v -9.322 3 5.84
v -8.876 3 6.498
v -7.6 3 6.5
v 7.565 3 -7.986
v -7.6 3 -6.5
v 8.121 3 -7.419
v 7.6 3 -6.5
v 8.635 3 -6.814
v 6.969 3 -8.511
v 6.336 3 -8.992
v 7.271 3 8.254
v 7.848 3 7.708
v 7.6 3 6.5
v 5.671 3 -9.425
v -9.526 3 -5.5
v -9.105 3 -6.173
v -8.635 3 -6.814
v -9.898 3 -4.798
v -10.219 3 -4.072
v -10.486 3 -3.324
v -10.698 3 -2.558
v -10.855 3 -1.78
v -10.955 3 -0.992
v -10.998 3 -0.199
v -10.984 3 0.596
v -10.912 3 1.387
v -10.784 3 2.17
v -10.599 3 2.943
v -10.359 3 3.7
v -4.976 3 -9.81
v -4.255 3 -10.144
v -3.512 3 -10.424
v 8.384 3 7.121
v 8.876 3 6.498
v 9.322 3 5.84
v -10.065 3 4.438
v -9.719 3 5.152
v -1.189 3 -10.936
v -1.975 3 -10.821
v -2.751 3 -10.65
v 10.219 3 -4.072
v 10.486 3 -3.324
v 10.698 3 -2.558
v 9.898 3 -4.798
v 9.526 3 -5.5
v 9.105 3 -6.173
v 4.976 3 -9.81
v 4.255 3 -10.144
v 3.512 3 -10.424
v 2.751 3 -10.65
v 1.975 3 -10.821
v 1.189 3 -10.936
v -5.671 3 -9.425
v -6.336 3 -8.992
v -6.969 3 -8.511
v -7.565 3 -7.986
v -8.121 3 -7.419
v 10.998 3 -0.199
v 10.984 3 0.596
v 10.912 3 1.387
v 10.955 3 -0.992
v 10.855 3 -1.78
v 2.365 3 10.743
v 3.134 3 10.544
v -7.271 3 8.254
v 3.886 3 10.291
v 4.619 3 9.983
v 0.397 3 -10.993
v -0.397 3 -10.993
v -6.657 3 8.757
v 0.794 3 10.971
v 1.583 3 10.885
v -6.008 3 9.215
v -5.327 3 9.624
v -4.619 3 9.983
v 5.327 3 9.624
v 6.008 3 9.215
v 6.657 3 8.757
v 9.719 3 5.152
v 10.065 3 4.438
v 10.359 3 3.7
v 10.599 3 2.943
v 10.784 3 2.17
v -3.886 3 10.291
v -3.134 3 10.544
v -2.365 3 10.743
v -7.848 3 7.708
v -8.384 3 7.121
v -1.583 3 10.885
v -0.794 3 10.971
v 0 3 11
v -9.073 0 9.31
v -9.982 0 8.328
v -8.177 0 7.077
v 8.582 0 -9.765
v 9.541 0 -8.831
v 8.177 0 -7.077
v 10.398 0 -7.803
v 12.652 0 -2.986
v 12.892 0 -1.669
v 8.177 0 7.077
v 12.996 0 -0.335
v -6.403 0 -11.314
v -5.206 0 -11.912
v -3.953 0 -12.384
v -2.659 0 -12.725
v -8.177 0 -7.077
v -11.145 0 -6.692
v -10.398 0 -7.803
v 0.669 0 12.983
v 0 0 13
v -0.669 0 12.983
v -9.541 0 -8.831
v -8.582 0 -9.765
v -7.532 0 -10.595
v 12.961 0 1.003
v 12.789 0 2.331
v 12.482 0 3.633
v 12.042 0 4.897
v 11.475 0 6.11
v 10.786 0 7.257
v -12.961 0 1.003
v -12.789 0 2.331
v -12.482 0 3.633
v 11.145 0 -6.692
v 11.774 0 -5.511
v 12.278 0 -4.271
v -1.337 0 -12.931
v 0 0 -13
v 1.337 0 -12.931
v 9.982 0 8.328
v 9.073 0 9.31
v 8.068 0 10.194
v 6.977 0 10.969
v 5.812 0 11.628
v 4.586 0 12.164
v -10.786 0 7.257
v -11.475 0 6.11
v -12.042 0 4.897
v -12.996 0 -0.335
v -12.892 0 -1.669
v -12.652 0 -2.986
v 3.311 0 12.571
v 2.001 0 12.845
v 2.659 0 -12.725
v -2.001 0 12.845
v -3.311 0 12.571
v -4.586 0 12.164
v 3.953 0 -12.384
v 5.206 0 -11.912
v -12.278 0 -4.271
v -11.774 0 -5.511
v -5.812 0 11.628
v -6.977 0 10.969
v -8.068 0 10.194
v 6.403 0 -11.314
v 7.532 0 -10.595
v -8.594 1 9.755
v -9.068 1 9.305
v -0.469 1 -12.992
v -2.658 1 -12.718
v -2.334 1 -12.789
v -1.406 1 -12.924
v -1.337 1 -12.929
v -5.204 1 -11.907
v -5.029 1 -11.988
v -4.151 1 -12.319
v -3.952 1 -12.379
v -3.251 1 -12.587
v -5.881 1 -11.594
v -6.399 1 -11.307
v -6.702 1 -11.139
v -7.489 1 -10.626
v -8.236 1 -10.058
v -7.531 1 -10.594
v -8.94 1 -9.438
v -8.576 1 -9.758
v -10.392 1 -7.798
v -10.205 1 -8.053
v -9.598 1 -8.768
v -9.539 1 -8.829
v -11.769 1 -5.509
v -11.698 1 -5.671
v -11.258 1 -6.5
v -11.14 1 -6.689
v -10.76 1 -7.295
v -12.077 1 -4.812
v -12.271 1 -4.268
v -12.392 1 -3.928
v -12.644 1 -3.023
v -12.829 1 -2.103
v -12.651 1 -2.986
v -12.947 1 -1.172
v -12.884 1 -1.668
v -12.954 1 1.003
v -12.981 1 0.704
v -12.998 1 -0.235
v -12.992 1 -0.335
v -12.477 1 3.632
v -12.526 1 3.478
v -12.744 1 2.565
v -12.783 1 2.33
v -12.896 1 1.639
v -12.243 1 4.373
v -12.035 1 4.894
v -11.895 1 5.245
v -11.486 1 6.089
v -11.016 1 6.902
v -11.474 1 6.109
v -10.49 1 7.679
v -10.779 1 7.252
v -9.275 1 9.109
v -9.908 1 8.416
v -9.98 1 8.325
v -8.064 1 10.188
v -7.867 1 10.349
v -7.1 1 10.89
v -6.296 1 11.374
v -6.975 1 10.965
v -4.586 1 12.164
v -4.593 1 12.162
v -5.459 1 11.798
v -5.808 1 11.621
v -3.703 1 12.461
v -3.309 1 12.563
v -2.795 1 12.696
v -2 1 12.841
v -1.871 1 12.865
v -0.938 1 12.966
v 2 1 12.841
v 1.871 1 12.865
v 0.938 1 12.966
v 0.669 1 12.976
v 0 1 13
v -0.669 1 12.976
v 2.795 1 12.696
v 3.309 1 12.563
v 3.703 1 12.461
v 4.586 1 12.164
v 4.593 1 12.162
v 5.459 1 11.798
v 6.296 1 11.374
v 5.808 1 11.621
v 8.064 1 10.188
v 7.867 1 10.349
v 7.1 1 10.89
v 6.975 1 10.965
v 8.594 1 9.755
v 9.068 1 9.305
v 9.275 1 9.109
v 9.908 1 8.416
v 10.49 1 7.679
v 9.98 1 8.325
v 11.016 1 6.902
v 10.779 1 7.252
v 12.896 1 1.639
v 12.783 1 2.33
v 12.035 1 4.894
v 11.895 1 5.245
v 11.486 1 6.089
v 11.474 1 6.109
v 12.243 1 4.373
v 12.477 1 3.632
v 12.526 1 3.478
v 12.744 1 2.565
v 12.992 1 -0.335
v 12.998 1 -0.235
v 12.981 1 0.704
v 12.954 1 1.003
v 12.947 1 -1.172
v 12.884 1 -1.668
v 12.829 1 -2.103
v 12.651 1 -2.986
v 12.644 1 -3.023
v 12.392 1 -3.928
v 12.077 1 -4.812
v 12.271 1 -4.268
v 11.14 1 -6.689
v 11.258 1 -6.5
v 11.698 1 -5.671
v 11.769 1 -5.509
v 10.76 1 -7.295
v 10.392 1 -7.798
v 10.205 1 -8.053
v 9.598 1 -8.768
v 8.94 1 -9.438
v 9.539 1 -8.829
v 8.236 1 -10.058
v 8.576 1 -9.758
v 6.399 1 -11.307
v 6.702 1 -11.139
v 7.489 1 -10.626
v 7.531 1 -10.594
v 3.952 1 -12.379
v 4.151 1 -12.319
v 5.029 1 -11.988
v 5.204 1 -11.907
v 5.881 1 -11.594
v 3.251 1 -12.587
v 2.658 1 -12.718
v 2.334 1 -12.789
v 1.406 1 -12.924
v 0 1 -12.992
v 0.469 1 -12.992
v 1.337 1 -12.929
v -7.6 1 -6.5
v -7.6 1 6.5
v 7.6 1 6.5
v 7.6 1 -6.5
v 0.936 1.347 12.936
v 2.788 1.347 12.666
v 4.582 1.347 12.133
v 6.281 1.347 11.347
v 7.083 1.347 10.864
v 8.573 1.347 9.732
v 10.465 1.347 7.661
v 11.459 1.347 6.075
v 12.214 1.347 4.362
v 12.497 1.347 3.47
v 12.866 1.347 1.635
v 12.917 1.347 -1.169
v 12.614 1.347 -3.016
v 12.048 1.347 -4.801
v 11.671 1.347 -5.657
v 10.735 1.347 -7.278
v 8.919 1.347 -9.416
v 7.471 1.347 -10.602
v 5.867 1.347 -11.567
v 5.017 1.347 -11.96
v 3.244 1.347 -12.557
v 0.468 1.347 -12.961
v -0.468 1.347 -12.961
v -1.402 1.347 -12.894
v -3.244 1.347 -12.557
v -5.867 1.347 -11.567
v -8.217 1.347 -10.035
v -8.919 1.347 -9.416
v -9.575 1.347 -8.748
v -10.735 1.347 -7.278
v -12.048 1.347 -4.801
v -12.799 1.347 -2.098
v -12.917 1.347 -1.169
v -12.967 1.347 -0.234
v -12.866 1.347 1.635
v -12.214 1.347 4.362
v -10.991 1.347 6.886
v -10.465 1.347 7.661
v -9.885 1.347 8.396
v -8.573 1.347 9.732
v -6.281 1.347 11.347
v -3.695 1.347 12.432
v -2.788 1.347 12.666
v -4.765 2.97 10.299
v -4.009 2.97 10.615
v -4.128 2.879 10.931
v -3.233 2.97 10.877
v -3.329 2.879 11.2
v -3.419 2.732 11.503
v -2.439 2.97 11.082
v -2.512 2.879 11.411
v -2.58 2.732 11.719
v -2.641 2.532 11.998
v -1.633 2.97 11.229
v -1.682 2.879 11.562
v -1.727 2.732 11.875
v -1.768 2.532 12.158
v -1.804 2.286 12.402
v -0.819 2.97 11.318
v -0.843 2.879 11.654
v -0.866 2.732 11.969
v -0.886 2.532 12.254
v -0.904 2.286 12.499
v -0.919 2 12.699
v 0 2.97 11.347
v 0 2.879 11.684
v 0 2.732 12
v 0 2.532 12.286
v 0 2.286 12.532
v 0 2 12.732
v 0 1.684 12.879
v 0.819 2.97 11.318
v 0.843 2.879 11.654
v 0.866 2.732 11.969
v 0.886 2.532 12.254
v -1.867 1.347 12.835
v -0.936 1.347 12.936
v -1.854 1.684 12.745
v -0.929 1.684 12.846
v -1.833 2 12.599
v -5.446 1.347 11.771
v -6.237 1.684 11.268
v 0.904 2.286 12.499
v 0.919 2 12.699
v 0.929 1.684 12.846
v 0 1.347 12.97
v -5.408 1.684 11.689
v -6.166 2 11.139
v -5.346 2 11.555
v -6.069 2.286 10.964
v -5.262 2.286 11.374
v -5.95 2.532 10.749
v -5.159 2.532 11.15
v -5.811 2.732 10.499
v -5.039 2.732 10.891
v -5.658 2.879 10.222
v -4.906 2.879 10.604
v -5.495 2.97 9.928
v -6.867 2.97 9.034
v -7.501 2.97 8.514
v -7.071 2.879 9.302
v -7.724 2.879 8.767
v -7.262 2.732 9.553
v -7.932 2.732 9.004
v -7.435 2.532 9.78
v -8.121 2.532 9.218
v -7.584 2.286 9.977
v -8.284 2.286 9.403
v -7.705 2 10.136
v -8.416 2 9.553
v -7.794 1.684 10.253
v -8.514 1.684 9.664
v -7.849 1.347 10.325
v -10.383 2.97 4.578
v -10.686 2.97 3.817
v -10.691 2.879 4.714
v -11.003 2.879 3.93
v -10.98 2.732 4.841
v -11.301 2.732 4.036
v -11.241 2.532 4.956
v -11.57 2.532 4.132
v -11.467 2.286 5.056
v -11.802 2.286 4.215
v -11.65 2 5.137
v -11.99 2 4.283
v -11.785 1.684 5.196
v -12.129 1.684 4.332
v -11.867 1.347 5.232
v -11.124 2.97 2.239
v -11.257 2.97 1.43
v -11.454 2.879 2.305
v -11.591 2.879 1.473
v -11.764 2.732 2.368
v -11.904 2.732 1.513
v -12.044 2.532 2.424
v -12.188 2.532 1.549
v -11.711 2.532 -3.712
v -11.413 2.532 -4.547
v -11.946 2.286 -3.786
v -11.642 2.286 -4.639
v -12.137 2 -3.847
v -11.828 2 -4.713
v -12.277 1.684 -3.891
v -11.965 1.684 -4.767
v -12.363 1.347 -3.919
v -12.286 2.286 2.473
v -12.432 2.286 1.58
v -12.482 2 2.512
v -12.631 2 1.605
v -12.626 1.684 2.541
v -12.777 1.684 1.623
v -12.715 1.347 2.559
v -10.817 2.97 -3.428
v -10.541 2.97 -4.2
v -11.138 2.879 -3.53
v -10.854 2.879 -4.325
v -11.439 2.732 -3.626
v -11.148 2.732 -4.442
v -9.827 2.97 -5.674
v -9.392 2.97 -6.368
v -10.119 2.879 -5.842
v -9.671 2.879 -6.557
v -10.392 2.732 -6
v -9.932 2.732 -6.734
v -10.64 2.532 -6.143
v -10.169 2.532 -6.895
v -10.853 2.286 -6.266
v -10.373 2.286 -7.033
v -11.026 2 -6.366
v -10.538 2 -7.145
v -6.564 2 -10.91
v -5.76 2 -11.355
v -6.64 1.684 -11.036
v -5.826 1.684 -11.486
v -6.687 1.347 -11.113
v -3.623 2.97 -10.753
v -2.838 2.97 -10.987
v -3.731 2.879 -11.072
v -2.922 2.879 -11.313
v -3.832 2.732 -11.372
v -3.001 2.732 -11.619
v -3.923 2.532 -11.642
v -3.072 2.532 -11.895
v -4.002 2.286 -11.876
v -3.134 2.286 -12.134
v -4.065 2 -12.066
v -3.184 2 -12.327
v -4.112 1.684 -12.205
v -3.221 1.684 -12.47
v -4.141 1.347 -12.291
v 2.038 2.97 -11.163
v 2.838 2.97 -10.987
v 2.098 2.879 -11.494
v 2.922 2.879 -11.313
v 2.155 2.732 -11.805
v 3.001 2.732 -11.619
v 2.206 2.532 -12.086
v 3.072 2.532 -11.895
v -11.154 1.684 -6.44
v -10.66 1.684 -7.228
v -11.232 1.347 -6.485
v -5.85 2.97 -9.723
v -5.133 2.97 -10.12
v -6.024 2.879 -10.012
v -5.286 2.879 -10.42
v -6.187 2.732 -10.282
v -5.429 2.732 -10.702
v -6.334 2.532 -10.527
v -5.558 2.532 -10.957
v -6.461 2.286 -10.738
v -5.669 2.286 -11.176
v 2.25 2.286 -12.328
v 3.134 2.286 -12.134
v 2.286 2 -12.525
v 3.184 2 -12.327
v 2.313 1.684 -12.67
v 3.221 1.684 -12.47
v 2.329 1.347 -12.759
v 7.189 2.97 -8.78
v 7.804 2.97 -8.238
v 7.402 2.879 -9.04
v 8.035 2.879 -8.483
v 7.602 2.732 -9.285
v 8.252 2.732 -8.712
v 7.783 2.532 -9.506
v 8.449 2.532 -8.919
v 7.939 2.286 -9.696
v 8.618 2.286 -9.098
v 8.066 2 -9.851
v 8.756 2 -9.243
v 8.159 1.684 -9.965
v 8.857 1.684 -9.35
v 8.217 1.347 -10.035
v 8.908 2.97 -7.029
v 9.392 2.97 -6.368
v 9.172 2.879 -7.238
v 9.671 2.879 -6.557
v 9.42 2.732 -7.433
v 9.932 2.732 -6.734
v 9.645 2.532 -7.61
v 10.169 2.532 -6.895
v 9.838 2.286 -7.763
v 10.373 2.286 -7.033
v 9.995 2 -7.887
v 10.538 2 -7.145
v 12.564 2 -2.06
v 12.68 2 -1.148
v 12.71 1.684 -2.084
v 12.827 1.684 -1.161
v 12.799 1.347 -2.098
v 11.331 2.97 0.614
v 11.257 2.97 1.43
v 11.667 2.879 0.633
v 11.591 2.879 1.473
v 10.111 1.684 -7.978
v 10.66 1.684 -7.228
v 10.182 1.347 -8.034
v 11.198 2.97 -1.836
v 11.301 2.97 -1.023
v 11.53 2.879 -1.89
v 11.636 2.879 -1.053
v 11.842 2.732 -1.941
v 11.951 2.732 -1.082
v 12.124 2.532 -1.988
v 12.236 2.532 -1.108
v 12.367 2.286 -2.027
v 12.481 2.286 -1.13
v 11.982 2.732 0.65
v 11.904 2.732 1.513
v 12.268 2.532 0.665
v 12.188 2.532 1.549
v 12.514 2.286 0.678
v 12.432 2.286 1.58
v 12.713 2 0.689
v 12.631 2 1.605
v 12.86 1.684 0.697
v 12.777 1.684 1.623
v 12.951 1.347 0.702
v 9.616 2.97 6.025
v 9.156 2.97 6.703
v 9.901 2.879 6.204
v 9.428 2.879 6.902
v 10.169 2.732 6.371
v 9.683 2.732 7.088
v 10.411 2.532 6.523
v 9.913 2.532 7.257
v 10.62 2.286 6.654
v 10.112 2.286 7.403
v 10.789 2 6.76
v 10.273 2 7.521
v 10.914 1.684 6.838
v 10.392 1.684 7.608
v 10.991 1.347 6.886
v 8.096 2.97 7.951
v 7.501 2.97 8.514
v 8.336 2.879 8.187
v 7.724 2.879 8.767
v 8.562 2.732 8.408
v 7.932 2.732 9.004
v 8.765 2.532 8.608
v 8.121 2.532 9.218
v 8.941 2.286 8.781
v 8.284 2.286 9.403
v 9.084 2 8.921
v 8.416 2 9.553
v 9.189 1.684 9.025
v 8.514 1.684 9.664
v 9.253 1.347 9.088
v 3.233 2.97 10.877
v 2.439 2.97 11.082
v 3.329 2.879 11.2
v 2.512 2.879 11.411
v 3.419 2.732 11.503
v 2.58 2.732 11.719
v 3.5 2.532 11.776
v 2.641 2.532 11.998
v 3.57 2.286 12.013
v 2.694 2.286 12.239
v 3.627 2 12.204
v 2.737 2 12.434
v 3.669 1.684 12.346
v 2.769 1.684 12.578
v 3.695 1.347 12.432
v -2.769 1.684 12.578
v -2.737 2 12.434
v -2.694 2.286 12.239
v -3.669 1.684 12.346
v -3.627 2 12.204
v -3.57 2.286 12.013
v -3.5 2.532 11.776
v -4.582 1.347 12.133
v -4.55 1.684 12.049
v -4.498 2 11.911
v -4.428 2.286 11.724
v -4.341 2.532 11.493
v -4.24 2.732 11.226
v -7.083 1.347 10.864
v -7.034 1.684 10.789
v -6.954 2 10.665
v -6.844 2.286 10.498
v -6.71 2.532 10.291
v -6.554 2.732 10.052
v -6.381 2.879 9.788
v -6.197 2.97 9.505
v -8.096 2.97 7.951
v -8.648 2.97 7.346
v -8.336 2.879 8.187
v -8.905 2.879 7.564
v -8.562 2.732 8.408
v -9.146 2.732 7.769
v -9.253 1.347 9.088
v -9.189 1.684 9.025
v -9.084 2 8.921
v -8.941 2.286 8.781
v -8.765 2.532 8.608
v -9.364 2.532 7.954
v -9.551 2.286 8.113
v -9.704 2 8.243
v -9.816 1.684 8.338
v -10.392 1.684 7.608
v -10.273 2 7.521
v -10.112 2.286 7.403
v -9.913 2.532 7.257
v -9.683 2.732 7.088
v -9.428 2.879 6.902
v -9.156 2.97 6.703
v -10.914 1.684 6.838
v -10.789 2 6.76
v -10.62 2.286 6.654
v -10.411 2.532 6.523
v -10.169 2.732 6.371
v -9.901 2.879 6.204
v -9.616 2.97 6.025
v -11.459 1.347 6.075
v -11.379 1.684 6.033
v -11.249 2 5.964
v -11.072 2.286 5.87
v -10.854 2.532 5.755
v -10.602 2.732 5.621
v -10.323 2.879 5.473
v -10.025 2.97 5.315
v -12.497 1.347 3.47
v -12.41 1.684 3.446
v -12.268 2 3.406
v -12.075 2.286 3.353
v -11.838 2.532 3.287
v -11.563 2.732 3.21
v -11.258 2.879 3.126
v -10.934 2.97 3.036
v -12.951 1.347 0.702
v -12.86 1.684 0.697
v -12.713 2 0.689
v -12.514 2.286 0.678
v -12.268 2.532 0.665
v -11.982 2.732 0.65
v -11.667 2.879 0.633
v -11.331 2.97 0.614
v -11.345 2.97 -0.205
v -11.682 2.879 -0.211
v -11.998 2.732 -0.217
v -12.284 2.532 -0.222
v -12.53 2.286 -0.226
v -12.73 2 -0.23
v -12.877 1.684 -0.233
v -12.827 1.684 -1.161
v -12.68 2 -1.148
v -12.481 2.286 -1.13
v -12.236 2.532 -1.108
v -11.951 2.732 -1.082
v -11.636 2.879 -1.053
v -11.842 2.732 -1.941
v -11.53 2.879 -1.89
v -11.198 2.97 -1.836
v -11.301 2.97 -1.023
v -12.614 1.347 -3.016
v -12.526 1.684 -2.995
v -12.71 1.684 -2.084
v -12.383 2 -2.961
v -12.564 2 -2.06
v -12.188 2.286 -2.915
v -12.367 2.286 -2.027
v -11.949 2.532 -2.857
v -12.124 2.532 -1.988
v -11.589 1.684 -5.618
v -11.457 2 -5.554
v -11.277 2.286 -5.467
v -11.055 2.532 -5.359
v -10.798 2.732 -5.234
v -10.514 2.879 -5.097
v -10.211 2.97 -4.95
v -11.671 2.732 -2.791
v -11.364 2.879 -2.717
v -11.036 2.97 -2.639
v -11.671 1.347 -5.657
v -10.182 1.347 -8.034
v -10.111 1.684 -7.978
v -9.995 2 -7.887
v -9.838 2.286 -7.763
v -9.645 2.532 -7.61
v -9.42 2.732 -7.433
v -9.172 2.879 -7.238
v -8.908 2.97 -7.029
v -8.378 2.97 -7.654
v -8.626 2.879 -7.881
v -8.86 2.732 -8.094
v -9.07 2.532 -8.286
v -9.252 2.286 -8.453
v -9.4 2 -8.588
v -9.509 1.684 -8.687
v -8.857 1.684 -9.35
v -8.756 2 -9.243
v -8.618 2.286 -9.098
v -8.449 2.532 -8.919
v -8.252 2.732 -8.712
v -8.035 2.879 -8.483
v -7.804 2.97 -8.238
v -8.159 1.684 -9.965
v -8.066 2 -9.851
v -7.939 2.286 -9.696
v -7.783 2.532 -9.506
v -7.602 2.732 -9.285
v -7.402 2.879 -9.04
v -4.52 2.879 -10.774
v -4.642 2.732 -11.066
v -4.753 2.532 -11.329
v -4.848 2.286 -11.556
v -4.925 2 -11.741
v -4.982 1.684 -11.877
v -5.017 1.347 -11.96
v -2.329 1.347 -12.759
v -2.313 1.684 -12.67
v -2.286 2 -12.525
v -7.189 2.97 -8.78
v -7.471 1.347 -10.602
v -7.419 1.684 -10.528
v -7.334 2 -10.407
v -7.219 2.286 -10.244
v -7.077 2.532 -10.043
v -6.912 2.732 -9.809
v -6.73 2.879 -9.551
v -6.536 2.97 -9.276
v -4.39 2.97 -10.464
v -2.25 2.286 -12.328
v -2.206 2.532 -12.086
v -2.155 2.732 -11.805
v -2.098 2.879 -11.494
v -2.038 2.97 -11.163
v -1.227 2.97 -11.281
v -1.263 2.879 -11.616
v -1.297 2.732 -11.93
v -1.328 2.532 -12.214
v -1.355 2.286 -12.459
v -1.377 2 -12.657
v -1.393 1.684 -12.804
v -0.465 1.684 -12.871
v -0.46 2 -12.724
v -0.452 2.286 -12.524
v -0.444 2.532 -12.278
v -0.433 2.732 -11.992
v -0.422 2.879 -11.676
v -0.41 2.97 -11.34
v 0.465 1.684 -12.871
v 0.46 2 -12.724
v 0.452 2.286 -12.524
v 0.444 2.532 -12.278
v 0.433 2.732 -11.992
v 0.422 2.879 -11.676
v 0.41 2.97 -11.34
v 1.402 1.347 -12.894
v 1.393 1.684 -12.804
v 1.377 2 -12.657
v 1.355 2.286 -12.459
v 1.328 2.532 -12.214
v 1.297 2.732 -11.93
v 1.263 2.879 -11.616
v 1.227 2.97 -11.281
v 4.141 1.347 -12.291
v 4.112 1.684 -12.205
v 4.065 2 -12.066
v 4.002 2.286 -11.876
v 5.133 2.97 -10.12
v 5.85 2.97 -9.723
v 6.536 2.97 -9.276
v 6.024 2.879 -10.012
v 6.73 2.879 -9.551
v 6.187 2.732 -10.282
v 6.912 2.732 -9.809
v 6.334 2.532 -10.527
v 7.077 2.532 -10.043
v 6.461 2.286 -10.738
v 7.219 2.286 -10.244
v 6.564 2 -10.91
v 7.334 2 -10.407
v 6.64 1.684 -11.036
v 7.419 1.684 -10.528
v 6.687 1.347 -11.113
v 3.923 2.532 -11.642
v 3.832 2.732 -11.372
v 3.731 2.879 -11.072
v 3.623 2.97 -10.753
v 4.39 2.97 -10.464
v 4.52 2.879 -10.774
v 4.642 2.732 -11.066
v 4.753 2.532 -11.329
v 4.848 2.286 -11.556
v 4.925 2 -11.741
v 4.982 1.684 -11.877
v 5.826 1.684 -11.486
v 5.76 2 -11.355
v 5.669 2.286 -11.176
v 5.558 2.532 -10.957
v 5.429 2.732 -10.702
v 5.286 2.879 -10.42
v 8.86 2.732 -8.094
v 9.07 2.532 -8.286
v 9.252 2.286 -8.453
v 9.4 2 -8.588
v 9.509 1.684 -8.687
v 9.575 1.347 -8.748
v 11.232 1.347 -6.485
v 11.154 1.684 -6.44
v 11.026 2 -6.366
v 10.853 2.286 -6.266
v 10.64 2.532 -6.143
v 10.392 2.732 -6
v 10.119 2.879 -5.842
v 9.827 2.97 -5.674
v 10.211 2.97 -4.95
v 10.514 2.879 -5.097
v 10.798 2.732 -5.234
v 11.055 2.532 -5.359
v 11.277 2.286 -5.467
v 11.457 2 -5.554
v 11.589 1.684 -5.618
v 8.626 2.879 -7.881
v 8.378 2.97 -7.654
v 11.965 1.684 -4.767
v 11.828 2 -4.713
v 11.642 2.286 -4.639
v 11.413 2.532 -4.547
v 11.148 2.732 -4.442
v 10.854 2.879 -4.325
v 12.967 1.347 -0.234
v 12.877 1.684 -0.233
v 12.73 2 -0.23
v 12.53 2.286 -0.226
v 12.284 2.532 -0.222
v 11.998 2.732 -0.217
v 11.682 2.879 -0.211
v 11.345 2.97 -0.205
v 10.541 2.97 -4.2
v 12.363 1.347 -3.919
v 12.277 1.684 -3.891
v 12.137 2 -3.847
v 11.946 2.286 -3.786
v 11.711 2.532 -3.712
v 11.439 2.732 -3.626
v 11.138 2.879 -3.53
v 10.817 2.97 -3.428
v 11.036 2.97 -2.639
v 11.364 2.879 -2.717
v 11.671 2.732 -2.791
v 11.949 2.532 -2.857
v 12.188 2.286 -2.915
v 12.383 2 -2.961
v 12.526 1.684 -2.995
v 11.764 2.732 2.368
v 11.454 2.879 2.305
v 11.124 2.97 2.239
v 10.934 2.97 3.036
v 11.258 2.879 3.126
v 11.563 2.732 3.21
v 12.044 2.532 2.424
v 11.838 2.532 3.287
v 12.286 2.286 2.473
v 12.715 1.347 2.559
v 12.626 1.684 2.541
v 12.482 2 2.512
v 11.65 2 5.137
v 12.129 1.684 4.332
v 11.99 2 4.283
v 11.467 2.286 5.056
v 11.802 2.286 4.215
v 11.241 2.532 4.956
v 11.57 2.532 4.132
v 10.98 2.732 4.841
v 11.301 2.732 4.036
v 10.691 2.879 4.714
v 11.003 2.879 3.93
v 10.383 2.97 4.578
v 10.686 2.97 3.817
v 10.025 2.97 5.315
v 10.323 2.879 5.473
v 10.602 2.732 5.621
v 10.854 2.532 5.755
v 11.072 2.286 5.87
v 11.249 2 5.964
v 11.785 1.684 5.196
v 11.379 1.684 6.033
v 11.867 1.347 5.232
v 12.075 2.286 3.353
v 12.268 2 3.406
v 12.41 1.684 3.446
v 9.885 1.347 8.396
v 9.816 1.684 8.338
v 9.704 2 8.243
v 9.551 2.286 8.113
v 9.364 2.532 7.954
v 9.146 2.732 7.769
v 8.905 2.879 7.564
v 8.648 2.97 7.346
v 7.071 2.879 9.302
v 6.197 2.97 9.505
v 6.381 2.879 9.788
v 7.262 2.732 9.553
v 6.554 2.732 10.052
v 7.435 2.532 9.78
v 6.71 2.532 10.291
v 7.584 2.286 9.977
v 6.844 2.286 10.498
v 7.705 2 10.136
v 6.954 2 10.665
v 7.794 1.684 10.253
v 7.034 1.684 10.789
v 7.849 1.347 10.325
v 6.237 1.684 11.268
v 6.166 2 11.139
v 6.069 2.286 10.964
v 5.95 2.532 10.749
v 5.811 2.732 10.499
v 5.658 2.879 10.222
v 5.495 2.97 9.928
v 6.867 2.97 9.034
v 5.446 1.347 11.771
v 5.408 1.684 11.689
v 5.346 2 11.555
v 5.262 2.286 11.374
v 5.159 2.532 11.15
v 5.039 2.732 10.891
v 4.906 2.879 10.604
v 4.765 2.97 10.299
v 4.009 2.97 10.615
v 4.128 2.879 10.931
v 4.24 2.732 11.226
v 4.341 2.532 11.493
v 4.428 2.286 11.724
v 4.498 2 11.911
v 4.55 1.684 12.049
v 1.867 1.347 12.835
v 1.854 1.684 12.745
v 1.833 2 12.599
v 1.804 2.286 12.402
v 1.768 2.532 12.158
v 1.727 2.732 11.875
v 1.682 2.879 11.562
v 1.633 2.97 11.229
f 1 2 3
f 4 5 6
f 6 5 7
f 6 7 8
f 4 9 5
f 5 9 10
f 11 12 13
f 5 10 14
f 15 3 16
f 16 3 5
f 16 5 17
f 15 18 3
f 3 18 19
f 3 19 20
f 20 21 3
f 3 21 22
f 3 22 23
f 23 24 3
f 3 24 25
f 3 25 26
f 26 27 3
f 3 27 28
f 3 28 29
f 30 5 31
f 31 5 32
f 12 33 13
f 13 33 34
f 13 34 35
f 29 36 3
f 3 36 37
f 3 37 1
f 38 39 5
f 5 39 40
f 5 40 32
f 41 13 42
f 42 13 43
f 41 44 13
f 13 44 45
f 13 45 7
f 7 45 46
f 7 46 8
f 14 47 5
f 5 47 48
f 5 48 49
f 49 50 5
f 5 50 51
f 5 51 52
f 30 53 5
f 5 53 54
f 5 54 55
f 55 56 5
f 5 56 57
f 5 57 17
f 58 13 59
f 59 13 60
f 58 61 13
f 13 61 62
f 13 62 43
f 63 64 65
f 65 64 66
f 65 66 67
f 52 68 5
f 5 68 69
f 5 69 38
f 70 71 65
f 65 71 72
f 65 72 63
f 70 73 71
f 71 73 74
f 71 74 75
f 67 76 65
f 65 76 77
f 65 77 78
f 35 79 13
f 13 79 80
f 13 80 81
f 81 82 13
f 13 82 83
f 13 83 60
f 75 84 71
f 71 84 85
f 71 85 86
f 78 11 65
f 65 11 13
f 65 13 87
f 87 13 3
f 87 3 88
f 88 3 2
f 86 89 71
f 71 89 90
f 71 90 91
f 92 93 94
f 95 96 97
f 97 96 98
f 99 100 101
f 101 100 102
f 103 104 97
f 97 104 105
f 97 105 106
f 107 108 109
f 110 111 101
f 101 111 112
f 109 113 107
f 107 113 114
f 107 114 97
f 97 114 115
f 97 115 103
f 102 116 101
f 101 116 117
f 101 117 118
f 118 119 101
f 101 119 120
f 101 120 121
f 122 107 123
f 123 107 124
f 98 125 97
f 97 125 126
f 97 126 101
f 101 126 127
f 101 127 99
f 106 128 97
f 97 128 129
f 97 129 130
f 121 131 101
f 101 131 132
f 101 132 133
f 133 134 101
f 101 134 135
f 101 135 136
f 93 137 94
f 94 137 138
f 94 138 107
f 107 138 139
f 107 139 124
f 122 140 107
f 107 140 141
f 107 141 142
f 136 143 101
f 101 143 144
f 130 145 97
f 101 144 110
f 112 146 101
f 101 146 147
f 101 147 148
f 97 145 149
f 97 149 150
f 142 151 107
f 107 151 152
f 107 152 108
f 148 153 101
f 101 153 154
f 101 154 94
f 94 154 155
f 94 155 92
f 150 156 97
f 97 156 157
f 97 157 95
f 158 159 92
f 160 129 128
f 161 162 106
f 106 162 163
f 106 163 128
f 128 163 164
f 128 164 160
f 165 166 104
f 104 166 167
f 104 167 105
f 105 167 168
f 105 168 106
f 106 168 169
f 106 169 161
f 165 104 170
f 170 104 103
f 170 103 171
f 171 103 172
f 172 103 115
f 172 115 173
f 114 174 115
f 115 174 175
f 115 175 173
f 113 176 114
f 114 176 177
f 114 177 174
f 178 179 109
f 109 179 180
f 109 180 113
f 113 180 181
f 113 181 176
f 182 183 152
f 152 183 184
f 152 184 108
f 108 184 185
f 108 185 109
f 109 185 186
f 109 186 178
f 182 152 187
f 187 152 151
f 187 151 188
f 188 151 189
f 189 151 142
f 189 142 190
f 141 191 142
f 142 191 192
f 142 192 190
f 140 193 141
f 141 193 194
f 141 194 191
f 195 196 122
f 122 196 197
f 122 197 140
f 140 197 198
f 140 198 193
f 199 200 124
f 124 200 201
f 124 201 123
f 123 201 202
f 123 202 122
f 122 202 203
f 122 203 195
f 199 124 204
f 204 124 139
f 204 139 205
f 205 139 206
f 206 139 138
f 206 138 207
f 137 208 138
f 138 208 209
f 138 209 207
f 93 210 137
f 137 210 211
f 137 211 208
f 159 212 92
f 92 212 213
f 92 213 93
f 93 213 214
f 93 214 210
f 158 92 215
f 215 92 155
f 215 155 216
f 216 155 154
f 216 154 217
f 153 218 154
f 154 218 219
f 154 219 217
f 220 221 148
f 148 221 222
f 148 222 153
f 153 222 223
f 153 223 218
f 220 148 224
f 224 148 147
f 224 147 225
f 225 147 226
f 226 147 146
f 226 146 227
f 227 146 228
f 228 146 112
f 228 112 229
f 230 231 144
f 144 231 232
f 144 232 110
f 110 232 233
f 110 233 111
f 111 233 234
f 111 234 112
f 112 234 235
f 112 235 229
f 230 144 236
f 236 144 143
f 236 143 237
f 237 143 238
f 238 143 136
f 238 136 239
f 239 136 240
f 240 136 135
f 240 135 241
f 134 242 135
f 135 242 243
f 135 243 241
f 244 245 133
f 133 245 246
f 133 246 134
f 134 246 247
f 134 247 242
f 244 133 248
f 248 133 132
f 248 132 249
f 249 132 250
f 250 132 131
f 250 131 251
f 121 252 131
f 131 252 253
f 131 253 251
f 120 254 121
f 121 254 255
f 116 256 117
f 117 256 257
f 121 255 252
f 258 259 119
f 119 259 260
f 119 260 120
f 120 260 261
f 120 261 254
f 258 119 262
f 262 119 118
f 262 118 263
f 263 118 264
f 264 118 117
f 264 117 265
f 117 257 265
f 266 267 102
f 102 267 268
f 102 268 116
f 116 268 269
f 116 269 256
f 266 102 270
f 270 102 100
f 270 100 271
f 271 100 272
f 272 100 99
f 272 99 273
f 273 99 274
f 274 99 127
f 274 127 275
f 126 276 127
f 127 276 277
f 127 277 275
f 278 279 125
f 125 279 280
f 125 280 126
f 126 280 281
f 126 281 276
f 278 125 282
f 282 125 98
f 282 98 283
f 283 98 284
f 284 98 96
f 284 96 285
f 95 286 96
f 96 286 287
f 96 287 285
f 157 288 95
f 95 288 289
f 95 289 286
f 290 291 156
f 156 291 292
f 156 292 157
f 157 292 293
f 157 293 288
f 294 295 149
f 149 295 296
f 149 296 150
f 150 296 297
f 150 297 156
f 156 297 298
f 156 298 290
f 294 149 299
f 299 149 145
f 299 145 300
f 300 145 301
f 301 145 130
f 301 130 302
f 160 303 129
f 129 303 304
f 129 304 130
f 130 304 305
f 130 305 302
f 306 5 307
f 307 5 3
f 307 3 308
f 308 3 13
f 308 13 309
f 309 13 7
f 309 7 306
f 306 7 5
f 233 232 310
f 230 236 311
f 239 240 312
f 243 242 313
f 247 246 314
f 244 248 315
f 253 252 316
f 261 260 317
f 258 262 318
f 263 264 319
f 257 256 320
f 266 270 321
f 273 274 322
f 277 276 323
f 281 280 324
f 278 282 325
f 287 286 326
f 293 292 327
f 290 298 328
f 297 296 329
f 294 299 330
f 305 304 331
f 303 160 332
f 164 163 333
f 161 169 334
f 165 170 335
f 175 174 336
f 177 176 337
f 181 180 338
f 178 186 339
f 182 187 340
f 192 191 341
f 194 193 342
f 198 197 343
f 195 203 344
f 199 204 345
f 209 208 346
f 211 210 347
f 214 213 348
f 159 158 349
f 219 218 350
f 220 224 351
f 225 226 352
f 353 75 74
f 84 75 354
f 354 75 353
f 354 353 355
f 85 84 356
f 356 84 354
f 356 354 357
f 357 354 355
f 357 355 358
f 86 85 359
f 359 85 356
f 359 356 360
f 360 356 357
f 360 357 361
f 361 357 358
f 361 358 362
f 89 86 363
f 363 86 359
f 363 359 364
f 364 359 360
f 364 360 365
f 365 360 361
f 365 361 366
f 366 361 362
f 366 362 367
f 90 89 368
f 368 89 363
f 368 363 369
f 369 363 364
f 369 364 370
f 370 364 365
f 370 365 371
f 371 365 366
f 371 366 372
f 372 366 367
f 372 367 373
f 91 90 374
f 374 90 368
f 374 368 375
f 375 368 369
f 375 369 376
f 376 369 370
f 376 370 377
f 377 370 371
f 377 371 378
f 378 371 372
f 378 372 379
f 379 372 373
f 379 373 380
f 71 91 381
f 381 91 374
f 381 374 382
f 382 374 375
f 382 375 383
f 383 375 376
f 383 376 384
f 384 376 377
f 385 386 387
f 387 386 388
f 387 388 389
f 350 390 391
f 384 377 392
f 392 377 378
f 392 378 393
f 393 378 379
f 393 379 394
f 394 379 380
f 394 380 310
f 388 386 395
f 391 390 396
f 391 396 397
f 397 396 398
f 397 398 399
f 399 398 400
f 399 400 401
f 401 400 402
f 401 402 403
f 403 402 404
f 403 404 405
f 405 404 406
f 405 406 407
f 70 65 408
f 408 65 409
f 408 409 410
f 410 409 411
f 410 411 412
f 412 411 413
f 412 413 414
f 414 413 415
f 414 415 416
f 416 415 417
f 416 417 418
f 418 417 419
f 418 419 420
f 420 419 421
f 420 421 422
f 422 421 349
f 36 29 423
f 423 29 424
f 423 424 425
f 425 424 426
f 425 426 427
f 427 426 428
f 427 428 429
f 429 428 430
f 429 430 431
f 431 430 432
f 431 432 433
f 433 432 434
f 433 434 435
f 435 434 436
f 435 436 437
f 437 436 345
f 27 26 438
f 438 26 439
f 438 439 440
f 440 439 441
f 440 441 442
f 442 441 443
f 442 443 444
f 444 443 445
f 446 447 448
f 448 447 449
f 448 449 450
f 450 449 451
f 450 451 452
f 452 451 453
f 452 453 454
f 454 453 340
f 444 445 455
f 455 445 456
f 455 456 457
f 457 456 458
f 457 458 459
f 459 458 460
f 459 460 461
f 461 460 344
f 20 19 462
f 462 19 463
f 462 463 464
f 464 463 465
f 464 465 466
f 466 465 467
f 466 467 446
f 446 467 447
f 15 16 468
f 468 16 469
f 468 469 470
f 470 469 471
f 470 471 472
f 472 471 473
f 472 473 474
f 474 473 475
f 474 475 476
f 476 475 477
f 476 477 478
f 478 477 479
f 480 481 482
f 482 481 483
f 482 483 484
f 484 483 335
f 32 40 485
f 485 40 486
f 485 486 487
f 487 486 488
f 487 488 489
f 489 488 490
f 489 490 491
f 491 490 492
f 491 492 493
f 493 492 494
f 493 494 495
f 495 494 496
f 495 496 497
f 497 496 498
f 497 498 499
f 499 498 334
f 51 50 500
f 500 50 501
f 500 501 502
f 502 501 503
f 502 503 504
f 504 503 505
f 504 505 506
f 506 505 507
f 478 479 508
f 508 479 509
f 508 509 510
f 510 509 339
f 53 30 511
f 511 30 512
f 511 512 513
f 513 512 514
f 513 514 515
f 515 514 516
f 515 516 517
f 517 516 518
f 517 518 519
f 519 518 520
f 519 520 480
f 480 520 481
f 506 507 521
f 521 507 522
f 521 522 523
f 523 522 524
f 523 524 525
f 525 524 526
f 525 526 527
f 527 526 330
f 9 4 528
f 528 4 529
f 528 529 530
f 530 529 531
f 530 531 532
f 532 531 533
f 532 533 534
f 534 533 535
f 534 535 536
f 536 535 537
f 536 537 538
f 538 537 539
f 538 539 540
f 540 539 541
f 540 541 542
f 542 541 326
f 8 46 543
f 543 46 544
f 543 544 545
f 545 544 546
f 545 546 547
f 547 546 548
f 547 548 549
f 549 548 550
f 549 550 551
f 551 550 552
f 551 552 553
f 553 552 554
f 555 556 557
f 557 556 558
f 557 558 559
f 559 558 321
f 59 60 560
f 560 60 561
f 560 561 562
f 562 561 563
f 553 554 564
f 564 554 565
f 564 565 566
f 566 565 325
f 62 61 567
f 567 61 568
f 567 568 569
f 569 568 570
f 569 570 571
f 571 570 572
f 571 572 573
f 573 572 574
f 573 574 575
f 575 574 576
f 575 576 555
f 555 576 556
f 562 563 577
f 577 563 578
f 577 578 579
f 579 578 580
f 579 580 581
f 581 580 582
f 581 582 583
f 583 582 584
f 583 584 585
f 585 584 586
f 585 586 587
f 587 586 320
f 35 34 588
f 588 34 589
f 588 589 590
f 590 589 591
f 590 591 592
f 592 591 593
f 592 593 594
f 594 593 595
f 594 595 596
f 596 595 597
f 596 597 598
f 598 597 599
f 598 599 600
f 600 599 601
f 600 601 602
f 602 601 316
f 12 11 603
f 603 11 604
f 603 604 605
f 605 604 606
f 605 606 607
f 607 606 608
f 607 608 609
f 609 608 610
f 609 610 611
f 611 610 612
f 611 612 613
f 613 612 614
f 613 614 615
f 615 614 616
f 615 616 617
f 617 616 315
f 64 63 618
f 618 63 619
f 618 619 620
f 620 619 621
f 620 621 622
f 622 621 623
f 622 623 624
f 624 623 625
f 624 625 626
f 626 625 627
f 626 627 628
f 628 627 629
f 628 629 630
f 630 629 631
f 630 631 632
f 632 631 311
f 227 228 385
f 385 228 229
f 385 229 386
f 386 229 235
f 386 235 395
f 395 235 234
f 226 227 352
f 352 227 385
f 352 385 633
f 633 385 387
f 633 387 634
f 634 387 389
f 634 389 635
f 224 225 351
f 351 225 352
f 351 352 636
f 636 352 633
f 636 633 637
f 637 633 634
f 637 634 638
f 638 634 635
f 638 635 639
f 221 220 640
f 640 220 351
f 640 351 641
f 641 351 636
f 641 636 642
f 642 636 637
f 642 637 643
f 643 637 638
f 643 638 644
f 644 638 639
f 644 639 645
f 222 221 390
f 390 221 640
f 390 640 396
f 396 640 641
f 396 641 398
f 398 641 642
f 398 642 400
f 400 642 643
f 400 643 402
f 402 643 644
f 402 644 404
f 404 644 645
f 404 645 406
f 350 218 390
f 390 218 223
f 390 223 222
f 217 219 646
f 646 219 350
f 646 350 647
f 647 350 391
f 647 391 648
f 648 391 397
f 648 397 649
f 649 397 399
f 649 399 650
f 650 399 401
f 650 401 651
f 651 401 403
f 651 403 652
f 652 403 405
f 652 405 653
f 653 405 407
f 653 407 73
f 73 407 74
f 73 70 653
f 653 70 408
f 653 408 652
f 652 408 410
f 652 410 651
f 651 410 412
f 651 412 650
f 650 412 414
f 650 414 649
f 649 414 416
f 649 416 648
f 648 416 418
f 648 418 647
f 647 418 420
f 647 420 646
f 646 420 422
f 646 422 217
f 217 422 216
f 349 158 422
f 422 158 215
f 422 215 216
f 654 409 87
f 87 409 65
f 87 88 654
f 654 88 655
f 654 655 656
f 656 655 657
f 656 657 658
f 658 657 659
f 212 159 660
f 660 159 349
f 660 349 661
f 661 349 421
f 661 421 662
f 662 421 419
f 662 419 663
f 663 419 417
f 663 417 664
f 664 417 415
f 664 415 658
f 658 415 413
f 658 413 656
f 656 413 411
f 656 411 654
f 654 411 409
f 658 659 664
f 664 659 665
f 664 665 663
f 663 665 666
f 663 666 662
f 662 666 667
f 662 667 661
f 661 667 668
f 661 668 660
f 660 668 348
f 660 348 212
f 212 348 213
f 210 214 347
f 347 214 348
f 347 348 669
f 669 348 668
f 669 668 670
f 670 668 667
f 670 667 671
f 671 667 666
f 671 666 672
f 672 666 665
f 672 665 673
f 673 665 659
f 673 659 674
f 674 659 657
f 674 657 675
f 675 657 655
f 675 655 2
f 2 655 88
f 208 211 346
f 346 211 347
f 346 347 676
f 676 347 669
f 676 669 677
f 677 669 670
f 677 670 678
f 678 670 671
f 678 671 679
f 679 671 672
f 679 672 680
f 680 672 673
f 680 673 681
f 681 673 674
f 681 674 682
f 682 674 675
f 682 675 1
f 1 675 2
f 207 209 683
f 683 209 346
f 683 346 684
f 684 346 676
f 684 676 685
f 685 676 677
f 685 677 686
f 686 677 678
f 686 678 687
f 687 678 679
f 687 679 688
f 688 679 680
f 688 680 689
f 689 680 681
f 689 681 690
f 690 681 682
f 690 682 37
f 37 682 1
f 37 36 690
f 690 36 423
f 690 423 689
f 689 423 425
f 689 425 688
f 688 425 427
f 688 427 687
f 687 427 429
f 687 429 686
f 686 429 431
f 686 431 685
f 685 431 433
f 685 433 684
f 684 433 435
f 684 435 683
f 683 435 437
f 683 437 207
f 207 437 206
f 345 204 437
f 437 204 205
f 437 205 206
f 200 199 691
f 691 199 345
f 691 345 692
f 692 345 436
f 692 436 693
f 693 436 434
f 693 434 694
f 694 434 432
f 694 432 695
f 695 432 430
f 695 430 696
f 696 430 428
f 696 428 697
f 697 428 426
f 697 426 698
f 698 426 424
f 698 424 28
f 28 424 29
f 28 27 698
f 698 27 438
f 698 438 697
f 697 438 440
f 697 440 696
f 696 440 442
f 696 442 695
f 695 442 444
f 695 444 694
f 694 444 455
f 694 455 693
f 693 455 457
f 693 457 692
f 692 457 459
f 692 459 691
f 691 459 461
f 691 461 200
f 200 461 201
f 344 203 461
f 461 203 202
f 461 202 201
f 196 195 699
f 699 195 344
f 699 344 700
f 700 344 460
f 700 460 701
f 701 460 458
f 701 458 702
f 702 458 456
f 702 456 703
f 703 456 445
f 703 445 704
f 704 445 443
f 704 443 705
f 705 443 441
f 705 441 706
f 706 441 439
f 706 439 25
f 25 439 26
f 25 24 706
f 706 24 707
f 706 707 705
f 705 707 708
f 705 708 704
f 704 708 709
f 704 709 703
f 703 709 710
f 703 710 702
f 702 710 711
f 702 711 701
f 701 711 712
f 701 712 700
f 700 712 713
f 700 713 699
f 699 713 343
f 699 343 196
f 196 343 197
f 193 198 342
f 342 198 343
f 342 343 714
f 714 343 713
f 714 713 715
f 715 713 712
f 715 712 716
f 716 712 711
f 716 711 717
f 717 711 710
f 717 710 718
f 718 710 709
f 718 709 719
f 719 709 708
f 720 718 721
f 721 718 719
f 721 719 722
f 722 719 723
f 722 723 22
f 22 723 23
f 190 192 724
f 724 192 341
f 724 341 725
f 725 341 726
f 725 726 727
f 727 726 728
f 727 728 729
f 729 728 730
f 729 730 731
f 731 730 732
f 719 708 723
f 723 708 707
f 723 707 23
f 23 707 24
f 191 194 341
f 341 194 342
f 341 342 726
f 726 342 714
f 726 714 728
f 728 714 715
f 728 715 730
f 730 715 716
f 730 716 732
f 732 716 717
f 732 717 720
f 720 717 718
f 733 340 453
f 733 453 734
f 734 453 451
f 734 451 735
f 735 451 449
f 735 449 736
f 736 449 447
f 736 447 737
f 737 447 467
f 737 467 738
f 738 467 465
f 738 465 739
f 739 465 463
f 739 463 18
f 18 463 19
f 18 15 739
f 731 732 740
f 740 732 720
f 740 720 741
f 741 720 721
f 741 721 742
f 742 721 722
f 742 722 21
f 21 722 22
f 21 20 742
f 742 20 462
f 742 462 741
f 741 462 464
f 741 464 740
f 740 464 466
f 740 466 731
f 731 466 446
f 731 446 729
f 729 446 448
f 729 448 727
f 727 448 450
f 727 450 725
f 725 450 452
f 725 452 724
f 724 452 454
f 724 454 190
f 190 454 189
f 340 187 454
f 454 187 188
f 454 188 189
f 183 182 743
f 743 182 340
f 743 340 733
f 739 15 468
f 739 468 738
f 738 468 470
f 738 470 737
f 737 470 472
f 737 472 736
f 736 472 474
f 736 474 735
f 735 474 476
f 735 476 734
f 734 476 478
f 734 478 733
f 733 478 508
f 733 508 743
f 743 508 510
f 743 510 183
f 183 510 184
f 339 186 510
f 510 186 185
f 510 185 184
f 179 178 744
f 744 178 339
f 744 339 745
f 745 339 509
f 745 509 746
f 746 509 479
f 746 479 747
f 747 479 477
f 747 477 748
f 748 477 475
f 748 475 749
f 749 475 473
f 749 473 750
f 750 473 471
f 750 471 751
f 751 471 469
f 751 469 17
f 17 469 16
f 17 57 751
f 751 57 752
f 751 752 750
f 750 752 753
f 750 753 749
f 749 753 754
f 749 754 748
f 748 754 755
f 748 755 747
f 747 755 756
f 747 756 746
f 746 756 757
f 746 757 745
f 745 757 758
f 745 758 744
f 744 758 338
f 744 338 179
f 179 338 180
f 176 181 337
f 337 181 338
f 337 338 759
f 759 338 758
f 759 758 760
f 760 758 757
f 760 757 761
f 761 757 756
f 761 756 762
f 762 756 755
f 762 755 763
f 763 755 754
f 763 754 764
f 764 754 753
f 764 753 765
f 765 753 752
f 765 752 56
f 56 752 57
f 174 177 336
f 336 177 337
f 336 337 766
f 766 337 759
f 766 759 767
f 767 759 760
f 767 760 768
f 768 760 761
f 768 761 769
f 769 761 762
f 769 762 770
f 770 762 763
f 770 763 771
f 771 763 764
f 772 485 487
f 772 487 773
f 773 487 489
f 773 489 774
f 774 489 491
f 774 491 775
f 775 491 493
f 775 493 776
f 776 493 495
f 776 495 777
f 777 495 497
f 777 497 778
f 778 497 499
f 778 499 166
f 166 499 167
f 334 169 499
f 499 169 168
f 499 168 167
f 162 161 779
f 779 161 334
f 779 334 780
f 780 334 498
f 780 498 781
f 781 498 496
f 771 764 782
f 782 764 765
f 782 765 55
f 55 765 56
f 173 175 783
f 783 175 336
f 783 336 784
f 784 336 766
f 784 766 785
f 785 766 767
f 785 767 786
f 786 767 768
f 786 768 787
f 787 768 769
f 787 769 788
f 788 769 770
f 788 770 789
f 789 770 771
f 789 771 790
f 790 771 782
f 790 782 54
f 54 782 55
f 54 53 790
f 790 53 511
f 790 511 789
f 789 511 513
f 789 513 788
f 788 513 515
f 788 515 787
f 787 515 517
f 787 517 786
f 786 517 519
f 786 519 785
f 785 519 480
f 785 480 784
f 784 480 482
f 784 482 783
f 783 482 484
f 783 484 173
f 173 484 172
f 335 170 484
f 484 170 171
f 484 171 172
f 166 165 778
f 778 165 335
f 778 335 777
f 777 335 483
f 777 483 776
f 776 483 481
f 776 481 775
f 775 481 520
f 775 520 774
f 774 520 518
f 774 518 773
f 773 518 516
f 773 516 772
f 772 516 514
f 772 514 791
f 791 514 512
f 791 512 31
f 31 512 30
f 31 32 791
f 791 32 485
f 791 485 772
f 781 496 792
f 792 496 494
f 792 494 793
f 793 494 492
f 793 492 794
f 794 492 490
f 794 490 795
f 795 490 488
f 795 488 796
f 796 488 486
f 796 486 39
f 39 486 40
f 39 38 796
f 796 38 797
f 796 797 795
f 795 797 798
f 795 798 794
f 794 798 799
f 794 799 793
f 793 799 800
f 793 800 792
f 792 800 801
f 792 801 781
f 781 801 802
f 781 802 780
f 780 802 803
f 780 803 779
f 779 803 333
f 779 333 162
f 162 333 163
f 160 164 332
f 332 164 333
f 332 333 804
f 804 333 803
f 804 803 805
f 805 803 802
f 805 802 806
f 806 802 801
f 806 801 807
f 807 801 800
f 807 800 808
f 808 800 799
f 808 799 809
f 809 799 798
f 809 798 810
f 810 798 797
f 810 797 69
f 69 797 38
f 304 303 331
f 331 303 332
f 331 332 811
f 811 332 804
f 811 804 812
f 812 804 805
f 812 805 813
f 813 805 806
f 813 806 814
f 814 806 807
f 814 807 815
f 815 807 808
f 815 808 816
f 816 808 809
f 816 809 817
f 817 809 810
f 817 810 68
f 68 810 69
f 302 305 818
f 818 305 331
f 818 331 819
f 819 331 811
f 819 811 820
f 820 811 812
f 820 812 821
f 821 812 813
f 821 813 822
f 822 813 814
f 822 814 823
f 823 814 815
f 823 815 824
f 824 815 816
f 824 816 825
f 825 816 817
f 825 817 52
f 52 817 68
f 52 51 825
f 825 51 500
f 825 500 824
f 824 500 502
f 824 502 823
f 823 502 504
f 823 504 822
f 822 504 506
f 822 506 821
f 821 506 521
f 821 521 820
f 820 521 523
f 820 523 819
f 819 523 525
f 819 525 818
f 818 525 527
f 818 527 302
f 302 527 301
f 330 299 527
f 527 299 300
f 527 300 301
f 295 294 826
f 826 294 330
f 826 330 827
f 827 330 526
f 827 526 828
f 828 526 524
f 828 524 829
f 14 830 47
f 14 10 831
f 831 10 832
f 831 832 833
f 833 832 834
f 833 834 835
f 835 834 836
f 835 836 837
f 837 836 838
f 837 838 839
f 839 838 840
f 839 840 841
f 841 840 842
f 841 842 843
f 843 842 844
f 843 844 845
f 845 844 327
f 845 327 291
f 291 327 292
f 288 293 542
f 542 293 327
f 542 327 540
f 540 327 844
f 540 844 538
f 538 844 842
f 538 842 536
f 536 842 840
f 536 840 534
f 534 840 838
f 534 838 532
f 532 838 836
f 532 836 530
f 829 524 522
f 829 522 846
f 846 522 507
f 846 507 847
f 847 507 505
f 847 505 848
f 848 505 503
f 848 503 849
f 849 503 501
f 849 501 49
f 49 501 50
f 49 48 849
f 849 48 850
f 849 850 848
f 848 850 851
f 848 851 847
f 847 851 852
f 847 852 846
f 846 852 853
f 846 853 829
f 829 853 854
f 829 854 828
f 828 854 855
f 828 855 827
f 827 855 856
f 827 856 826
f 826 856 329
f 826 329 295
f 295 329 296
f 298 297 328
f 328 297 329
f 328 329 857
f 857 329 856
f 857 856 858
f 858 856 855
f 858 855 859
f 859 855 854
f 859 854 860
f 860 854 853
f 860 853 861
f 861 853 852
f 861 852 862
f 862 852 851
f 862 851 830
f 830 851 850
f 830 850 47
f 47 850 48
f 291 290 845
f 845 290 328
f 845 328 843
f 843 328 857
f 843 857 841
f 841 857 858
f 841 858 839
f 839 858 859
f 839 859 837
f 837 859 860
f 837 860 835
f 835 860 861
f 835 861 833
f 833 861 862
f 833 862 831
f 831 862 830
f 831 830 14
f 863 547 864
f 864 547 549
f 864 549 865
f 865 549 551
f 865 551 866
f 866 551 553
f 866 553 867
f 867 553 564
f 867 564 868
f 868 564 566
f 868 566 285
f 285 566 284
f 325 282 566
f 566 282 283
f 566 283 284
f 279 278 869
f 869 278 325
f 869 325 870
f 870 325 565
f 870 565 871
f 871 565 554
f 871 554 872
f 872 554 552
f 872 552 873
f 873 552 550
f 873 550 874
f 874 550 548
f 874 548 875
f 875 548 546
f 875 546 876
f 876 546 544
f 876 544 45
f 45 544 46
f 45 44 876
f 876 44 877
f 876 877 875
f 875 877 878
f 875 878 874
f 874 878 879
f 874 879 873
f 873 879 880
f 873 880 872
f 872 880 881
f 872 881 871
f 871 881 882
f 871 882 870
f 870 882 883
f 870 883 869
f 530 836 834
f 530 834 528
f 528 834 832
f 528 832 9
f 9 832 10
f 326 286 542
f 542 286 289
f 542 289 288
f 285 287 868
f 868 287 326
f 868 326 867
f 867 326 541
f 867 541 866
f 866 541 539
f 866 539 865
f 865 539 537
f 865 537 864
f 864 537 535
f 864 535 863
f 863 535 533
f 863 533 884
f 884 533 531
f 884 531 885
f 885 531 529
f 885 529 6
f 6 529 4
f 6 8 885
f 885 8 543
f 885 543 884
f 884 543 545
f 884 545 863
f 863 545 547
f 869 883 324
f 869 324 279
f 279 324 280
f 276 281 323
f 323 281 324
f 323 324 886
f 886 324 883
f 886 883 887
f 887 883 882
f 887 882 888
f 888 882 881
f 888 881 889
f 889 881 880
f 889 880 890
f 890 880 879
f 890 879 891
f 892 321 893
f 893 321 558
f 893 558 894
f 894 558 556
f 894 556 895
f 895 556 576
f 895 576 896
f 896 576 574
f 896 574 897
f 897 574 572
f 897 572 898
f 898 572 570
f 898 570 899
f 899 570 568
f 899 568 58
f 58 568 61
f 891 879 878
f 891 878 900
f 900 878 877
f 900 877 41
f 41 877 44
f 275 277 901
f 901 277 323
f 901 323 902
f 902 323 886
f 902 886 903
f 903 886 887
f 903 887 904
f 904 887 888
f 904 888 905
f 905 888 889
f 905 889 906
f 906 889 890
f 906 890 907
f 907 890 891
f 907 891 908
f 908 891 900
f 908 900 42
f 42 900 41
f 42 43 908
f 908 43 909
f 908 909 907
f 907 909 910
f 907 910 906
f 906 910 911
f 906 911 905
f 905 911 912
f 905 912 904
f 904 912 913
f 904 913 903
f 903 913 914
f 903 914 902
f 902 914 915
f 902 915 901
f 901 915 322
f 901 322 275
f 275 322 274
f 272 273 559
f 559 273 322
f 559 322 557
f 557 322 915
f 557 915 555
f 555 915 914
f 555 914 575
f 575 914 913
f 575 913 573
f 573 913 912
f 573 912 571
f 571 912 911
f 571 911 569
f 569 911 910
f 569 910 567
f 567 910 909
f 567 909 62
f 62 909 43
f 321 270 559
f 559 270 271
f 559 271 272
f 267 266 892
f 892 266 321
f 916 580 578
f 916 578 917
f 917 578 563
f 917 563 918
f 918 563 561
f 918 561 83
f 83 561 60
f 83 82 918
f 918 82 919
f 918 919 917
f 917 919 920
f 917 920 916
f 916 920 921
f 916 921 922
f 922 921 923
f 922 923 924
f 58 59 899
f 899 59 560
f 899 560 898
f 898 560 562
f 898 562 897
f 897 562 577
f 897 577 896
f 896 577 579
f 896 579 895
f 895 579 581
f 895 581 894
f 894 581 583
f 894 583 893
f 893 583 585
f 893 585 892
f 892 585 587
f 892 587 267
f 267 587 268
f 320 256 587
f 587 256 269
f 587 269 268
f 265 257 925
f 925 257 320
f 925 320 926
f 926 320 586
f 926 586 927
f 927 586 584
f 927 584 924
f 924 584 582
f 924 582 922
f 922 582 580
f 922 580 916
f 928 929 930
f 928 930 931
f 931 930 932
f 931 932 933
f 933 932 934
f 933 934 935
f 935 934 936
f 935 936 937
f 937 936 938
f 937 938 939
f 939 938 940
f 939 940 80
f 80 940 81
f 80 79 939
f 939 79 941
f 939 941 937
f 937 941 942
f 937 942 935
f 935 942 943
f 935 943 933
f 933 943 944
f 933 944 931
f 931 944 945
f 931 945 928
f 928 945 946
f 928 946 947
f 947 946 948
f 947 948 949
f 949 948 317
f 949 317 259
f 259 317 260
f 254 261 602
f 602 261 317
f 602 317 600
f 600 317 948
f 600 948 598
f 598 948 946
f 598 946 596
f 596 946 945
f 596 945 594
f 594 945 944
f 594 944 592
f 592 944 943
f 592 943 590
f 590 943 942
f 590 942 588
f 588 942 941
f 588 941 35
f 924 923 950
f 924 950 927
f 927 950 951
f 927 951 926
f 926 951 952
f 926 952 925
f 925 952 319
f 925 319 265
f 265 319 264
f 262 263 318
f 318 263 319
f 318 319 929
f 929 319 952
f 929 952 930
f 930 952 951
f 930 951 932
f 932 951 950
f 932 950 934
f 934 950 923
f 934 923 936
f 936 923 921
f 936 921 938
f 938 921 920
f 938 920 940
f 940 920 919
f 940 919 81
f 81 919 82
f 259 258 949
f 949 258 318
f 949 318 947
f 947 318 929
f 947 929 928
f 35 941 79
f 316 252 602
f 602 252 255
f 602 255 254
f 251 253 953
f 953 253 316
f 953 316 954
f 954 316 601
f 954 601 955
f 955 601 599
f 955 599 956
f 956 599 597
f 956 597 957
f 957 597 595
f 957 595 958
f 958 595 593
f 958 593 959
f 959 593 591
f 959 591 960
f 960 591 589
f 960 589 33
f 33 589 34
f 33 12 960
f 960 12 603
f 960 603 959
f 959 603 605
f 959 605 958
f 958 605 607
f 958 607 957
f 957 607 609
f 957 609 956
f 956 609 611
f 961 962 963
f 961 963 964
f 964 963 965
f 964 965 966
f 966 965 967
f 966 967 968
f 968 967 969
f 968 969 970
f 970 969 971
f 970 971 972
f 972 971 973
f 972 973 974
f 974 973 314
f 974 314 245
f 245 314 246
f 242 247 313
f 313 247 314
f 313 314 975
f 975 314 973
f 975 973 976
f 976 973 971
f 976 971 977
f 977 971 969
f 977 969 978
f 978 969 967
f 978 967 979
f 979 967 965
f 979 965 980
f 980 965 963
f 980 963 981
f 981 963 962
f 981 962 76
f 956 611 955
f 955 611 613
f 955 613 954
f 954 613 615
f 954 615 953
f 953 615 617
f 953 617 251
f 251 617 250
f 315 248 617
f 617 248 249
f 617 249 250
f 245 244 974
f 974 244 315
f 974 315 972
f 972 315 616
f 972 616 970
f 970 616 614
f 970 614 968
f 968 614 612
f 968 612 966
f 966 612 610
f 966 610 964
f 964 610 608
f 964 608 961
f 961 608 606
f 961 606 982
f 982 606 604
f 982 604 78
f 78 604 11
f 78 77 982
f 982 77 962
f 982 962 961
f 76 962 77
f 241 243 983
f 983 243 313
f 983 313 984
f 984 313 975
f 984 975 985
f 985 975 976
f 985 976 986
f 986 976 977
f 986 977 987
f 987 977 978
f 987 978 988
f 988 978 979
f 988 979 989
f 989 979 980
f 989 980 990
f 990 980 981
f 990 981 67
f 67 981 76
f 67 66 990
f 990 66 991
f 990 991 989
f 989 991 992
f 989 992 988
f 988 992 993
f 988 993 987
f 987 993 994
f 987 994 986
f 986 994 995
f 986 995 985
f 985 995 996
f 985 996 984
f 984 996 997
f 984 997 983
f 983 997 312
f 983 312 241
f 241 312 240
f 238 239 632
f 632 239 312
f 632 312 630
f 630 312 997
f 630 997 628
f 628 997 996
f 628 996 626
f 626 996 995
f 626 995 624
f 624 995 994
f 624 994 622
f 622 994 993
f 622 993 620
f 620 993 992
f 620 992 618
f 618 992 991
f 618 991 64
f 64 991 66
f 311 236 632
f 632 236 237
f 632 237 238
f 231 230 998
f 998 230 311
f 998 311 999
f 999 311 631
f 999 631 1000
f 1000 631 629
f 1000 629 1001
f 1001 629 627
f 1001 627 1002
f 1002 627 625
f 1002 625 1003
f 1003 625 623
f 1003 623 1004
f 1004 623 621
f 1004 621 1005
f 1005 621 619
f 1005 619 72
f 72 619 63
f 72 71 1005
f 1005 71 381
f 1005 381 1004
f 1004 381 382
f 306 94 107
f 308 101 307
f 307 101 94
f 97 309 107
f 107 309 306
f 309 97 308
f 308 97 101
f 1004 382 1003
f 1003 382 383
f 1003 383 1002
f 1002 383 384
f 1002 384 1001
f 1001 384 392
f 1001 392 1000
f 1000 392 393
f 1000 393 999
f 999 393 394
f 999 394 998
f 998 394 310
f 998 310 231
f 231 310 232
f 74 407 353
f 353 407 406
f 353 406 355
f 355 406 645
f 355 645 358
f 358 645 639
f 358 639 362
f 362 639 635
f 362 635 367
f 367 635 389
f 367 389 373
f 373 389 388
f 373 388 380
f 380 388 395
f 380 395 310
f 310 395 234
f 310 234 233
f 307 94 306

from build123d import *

# Parameters (mm, degrees)
SKETCH1_R             = 13
SKETCH1_W             = 15.2
SKETCH1_H             = 13
BOSS_EXTRUDE1_DEPTH   = 3
FILLET1_R             = 2
CHAMFER1_SIZE         = 1
CHAMFER1_SIZE2        = 0.577350269
CHAMFER1_PART_2_SIZE  = 1
CHAMFER1_PART_2_SIZE2 = 0.577350269
CHAMFER1_PART_3_SIZE  = 1
CHAMFER1_PART_3_SIZE2 = 0.577350269
CHAMFER1_PART_4_SIZE  = 1
CHAMFER1_PART_4_SIZE2 = 0.577350269


with BuildPart() as part:
    # Sketch1 → Boss-Extrude1 (new body)
    with BuildSketch(Plane(origin=(0, 0, 0), x_dir=(1, 0, 0), z_dir=(0, 1, 0))):
        Circle(SKETCH1_R)
        Rectangle(SKETCH1_W, SKETCH1_H, mode=Mode.SUBTRACT)
    extrude(amount=BOSS_EXTRUDE1_DEPTH)

    # Fillet1
    fillet1_edges = [part.edges().sort_by_distance(p)[0] for p in [
        (-13, 3, 0),
    ]]
    fillet(fillet1_edges, radius=FILLET1_R)

    # Chamfer1
    chamfer1_edges = [part.edges().sort_by_distance(p)[0] for p in [
        (-7.6, 0, 0),
    ]]
    chamfer1_side = [part.faces().sort_by_distance(p)[0] for p in [
        (-7.6, 1.5, 0),
    ]]
    chamfer(chamfer1_edges, length=CHAMFER1_SIZE, length2=CHAMFER1_SIZE2, reference=chamfer1_side[0])

    # Chamfer1 part 2
    chamfer1_part_2_edges = [part.edges().sort_by_distance(p)[0] for p in [
        (0, 0, 6.5),
    ]]
    chamfer1_part_2_side = [part.faces().sort_by_distance(p)[0] for p in [
        (0, 1.5, 6.5),
    ]]
    chamfer(chamfer1_part_2_edges, length=CHAMFER1_PART_2_SIZE, length2=CHAMFER1_PART_2_SIZE2, reference=chamfer1_part_2_side[0])

    # Chamfer1 part 3
    chamfer1_part_3_edges = [part.edges().sort_by_distance(p)[0] for p in [
        (7.6, 0, 0),
    ]]
    chamfer1_part_3_side = [part.faces().sort_by_distance(p)[0] for p in [
        (7.6, 1.5, 0),
    ]]
    chamfer(chamfer1_part_3_edges, length=CHAMFER1_PART_3_SIZE, length2=CHAMFER1_PART_3_SIZE2, reference=chamfer1_part_3_side[0])

    # Chamfer1 part 4
    chamfer1_part_4_edges = [part.edges().sort_by_distance(p)[0] for p in [
        (0, 0, -6.5),
    ]]
    chamfer1_part_4_side = [part.faces().sort_by_distance(p)[0] for p in [
        (0, 1.5, -6.5),
    ]]
    chamfer(chamfer1_part_4_edges, length=CHAMFER1_PART_4_SIZE, length2=CHAMFER1_PART_4_SIZE2, reference=chamfer1_part_4_side[0])


solid = part.part
